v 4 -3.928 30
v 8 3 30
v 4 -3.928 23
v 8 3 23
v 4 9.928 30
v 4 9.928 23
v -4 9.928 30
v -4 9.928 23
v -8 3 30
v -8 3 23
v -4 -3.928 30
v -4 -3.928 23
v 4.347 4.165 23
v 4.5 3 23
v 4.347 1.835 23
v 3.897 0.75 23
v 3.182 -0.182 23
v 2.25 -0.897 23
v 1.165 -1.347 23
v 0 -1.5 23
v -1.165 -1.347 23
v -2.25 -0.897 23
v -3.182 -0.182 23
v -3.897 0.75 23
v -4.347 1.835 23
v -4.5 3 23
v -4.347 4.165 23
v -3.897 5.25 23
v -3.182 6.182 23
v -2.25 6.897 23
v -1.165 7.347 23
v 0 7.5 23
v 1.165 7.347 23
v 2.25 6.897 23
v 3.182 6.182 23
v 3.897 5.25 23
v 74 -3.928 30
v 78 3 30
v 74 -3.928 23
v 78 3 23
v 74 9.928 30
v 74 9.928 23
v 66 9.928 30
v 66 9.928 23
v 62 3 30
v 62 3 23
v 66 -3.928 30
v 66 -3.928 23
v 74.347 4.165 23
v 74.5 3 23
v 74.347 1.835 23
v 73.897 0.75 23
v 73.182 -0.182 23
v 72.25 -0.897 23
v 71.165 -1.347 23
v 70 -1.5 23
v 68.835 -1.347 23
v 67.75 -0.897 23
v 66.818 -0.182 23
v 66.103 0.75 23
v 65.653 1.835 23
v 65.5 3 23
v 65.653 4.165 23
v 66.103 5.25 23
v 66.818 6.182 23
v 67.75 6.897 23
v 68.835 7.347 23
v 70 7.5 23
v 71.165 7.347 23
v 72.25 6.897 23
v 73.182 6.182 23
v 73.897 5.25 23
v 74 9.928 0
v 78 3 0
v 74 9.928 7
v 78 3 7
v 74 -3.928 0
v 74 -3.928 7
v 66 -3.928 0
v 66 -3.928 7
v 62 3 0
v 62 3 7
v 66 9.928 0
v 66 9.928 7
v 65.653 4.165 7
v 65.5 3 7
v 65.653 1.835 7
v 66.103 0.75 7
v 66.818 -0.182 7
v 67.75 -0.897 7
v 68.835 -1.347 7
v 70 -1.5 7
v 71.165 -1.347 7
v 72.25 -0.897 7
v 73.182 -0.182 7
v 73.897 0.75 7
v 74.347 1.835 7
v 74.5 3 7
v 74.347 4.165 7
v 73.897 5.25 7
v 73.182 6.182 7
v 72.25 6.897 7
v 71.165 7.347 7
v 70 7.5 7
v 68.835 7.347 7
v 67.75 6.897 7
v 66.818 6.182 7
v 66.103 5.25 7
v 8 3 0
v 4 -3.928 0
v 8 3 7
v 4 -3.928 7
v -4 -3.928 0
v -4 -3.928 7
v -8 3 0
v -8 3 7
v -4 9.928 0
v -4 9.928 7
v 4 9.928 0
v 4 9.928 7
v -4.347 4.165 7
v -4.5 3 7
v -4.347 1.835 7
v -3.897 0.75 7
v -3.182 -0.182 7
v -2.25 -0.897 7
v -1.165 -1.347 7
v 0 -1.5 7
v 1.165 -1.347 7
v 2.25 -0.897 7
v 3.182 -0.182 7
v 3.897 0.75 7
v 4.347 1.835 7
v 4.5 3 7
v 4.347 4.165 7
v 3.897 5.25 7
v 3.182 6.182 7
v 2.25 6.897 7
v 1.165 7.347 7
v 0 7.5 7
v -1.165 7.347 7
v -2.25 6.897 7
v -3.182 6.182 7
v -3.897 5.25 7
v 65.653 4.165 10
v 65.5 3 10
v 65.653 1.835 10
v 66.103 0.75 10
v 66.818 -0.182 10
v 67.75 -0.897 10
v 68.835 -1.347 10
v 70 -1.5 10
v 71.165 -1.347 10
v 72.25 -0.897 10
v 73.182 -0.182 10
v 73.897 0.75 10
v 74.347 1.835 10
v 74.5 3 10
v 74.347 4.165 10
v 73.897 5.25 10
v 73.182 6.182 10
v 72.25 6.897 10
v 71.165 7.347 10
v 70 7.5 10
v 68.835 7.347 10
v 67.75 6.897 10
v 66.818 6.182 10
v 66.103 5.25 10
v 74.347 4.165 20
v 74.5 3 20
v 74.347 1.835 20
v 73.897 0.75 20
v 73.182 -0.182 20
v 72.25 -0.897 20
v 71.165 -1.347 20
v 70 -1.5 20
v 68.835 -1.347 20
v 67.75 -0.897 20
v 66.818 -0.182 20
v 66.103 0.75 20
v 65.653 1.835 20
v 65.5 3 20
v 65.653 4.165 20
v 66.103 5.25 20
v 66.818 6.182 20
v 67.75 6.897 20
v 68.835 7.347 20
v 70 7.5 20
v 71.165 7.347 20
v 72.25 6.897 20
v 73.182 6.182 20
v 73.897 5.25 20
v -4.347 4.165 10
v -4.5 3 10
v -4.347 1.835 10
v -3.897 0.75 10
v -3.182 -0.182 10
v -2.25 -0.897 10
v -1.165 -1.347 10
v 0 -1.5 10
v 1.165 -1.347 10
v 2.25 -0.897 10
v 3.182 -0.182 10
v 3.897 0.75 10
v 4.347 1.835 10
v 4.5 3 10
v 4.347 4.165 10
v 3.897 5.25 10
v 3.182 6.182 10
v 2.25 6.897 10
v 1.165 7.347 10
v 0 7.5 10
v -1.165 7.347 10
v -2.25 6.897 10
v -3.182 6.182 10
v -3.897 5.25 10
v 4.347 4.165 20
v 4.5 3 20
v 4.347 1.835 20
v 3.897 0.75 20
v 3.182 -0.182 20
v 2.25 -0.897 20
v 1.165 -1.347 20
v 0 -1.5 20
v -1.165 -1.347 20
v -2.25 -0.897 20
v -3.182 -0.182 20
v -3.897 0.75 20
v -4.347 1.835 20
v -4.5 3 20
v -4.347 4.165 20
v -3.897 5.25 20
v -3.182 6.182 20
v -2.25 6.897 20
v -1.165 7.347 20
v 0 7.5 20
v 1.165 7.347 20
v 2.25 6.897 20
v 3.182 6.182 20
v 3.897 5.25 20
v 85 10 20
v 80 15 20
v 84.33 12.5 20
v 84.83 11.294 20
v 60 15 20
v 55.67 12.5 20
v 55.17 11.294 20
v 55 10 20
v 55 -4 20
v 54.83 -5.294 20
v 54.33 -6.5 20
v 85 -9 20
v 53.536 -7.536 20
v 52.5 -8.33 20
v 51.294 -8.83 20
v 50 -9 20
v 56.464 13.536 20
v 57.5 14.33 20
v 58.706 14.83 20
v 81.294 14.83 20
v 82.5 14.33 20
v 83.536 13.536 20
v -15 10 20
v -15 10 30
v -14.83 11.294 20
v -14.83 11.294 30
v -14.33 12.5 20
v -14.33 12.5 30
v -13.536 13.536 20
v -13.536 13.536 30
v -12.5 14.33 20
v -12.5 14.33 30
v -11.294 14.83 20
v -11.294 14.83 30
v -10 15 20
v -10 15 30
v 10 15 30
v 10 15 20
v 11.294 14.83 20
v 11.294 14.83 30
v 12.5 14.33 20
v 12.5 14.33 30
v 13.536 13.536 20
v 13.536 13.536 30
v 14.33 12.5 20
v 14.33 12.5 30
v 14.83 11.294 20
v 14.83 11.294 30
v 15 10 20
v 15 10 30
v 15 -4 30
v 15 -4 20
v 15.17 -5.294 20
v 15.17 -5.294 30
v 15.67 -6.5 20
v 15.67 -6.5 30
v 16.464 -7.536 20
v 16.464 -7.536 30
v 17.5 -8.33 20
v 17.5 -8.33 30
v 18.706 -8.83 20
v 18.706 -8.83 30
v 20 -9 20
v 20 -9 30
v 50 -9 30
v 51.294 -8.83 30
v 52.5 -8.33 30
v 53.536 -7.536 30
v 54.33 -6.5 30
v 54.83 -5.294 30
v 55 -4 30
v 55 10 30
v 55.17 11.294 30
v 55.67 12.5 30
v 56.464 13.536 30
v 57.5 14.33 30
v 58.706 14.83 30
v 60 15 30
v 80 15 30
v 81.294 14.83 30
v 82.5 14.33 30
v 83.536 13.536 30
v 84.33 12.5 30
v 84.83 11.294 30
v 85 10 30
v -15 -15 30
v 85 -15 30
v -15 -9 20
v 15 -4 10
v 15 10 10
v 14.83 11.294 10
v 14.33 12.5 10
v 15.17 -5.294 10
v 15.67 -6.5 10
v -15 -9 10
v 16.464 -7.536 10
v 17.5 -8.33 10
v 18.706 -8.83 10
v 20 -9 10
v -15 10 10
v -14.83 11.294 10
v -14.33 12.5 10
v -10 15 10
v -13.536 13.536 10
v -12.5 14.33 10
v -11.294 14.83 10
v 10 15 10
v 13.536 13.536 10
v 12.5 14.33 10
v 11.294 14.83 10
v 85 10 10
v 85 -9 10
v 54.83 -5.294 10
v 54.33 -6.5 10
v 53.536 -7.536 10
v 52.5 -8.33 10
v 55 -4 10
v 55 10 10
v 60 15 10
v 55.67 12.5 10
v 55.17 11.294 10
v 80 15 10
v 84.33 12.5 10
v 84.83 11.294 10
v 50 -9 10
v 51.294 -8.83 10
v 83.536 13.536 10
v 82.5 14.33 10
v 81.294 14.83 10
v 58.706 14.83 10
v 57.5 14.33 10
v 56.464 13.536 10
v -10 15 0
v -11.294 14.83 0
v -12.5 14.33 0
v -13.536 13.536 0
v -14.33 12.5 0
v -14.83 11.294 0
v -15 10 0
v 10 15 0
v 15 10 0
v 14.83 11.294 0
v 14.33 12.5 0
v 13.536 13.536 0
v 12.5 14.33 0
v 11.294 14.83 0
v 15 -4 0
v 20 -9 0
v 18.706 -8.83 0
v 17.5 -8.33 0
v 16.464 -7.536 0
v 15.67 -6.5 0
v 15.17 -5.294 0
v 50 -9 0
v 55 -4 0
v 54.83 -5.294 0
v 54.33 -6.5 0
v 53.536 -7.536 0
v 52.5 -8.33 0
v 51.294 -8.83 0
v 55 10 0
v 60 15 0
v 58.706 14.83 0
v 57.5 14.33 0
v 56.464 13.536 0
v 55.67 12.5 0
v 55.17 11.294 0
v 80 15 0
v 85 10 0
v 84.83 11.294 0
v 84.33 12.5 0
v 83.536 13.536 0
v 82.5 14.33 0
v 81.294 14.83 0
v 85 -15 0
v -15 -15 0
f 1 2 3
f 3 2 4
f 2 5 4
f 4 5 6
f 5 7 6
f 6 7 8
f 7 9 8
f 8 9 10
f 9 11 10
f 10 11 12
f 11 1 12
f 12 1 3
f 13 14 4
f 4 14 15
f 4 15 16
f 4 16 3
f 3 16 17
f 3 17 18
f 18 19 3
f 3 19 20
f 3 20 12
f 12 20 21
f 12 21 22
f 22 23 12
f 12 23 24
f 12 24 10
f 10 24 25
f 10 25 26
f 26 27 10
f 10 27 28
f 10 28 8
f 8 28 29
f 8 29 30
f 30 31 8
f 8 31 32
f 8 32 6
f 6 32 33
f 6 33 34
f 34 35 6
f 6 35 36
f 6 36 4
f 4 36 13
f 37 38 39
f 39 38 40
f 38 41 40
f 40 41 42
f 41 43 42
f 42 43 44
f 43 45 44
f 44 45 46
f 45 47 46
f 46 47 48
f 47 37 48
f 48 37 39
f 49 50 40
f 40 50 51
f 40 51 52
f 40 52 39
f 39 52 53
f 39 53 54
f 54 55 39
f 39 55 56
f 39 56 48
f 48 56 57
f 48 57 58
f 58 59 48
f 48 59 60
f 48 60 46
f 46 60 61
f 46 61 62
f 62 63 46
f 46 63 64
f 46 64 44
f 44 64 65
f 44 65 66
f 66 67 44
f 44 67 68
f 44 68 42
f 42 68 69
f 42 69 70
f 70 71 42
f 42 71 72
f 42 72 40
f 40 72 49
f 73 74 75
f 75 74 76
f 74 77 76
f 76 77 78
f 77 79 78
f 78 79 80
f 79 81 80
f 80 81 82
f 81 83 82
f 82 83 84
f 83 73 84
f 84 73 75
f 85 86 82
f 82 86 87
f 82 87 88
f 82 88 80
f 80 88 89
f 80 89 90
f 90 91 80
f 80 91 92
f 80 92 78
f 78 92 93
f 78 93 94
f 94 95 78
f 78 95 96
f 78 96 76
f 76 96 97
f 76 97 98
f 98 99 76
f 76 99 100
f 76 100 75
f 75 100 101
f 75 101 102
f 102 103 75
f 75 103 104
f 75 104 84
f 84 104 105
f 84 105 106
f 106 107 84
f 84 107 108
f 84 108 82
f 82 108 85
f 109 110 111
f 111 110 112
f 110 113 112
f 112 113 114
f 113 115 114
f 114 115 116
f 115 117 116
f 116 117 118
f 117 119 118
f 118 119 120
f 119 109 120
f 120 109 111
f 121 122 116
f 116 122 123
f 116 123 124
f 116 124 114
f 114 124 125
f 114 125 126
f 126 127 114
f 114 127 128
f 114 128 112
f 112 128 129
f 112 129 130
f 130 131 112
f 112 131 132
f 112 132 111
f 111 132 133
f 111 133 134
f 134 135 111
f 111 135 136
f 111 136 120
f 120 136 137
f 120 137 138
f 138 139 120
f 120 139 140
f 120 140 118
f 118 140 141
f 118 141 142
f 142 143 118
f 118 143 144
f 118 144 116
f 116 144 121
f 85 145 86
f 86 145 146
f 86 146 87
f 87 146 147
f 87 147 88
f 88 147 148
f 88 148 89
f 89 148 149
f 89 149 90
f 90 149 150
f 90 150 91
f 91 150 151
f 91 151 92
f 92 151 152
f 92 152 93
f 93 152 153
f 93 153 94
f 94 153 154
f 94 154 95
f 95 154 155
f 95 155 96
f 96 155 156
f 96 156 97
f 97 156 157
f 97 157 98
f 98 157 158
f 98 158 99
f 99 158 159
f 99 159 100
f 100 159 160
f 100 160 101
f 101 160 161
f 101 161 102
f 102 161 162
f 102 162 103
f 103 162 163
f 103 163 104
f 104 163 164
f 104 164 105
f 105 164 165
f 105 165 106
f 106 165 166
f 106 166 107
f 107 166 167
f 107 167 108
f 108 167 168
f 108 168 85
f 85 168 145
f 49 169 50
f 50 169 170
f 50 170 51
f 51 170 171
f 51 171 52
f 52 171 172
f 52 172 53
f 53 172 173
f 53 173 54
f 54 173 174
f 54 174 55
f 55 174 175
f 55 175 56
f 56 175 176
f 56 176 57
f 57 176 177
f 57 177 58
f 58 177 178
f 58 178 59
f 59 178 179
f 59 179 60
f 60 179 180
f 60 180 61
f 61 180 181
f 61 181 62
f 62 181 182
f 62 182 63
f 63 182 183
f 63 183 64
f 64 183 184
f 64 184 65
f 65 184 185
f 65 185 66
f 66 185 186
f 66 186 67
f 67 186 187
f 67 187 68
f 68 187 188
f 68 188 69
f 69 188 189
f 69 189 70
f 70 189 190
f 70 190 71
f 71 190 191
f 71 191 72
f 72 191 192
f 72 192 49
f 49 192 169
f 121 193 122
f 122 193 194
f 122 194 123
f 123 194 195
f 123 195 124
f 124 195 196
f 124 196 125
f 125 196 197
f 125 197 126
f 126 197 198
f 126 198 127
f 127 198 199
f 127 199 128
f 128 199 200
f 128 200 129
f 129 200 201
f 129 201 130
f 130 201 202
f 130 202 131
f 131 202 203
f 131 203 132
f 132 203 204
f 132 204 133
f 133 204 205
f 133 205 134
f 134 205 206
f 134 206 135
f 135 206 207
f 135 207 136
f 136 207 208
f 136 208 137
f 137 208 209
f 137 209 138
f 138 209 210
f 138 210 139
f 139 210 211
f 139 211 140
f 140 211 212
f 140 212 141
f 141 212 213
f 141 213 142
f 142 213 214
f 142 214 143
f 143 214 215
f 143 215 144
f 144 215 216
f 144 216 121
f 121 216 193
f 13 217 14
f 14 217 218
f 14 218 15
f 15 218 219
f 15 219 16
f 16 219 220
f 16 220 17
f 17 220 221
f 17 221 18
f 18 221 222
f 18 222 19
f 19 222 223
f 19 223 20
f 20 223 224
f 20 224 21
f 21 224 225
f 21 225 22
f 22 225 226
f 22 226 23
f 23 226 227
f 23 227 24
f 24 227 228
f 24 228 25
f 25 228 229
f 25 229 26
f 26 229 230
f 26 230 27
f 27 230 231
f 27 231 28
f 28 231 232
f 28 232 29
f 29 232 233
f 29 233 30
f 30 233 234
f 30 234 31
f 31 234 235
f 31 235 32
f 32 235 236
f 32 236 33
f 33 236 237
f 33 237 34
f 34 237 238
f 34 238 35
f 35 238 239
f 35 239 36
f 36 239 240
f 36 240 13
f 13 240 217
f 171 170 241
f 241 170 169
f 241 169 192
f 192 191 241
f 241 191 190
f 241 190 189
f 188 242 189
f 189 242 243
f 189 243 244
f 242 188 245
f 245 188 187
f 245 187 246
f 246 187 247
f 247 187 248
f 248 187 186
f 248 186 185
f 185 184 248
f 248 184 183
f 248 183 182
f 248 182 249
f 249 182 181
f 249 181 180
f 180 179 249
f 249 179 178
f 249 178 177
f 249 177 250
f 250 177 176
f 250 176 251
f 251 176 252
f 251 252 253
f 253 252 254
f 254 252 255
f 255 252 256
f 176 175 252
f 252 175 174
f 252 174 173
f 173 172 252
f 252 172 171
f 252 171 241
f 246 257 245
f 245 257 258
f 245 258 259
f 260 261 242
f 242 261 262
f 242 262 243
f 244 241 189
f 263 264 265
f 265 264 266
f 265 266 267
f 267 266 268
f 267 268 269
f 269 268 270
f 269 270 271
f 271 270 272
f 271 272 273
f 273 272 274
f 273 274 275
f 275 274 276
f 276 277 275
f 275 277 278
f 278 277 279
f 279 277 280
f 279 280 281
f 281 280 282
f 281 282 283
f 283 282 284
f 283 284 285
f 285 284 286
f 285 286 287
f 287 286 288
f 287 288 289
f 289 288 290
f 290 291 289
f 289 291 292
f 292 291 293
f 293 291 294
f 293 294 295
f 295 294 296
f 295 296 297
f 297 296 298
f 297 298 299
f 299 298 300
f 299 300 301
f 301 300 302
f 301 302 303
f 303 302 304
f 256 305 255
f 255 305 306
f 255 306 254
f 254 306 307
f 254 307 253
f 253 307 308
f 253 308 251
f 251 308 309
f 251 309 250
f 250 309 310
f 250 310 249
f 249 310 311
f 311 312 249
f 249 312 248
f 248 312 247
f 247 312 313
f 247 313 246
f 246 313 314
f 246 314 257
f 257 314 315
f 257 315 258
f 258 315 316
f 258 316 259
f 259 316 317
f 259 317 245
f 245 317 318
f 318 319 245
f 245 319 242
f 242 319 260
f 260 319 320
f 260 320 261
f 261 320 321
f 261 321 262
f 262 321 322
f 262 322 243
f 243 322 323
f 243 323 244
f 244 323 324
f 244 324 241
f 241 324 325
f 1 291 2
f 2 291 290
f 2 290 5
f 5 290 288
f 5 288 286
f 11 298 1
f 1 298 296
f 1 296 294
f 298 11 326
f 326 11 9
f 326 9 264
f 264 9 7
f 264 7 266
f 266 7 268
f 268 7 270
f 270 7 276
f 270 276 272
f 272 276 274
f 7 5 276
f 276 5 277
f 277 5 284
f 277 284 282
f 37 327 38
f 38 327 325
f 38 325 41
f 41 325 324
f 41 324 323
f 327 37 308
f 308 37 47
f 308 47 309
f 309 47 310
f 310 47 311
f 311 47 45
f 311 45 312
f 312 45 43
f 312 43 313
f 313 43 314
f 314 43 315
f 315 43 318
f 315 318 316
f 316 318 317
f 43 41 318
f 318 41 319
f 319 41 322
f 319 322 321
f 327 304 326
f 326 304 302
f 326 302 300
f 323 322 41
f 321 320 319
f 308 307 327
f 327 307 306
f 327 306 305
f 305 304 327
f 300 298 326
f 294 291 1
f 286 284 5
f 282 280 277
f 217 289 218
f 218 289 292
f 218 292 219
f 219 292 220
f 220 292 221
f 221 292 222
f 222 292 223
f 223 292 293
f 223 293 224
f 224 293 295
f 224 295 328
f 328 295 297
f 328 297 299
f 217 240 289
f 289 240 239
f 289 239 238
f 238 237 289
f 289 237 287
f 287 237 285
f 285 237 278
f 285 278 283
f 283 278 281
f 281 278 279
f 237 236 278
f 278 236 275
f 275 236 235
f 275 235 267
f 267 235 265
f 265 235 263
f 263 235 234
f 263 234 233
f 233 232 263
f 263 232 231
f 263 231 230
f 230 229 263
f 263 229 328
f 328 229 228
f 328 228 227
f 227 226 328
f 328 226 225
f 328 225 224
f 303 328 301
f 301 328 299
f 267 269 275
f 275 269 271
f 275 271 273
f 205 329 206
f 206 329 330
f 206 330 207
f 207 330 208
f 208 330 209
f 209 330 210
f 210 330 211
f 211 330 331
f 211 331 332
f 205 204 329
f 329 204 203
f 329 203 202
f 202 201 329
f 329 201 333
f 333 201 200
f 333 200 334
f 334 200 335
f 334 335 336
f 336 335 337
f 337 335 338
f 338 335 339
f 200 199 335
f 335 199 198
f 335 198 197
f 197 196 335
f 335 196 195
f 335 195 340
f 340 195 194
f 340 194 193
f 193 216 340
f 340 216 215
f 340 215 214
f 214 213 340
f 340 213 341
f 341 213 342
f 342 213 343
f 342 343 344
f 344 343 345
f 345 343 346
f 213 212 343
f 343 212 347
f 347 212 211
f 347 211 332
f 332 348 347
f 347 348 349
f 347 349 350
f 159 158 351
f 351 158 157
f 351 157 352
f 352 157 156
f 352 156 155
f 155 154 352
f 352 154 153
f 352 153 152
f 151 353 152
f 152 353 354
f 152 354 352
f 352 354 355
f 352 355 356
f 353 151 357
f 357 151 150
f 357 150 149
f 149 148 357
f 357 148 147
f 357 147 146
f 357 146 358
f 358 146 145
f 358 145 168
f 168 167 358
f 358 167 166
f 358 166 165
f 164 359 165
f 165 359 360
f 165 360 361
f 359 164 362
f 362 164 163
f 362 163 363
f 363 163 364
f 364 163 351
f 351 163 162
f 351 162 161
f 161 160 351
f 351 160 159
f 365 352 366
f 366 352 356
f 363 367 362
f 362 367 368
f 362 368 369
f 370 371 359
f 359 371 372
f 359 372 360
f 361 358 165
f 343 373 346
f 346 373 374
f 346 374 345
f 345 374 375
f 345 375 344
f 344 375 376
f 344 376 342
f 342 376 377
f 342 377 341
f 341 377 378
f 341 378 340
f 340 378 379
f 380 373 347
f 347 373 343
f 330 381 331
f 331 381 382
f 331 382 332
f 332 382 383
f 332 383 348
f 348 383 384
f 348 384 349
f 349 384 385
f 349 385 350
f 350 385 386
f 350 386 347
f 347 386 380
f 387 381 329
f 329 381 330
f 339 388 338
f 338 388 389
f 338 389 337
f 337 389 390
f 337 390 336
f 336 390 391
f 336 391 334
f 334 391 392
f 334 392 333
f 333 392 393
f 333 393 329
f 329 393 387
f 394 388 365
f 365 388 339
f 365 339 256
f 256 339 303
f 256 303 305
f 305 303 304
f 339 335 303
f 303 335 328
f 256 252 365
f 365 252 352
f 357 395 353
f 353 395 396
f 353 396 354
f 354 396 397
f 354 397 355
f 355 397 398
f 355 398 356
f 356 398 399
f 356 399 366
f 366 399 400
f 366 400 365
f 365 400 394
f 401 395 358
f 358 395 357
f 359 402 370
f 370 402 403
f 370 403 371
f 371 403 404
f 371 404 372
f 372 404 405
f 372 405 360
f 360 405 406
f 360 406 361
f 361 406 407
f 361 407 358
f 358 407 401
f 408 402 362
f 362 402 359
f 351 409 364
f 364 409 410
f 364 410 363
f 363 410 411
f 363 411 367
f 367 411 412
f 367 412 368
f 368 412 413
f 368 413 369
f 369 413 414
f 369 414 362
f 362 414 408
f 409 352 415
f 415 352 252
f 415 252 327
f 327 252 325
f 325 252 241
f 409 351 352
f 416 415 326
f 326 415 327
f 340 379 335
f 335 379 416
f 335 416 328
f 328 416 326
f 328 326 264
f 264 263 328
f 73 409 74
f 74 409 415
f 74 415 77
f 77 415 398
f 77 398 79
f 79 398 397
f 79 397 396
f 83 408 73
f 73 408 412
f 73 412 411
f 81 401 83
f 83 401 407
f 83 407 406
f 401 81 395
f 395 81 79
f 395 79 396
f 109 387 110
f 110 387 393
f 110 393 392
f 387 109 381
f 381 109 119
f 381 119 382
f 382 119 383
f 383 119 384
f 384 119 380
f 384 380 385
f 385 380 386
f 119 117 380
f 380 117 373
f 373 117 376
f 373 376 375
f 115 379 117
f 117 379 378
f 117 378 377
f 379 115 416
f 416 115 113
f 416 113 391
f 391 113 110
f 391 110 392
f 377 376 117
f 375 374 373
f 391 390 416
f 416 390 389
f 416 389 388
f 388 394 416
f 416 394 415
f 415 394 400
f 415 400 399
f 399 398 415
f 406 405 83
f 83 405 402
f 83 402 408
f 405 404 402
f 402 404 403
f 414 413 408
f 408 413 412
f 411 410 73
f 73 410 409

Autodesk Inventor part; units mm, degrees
ref_plane "YZ Plane" through (0, 0, 0) normal (1, 0, 0) x (0, 1, 0)
ref_plane "XZ Plane" through (0, 0, 0) normal (0, 1, 0) x (-1, 0, 0)
sketch "Sketch1" plane through (0, 0, 0) normal (0, 0, 1) x (1, 0, 0)
  line L0 (10, 15) -> (-10, 15)
  line L1 (-15, 10) -> (-15, -15)
  line L2 (-15, -15) -> (15, -15)
  line L3 (15, -4) -> (15, 10)
  line L4 (15, 15) -> (-15, -15) construction
  line L5 (-15, 15) -> (15, -15) construction
  line L6 (15, -15) -> (55, -15)
  line L7 (85, -15) -> (85, -9)
  line L8 (-15, -9) -> (-15, -15)
  line L9 (85, -15) -> (55, -15)
  line L10 (55, -4) -> (55, 10)
  line L11 (60, 15) -> (80, 15)
  line L12 (85, 10) -> (85, -15)
  line L13 (50, -9) -> (20, -9)
  arc A0 (-10, 15) -> (-15, 10) centre (-10, 10) ccw
  arc A1 (15, 10) -> (10, 15) centre (10, 10) ccw
  arc A2 (15, -4) -> (20, -9) centre (20, -4) ccw
  arc A3 (50, -9) -> (55, -4) centre (50, -4) ccw
  arc A4 (60, 15) -> (55, 10) centre (60, 10) ccw
  arc A5 (85, 10) -> (80, 15) centre (80, 10) ccw
  point P0 (0, 0)
  point P1 (55, 15)
  point P2 (85, 15)
  dimension "d0" = 30
  dimension "d1" = 30
  dimension "d2" = 100
  dimension "d3" = 6
  dimension "d4" = 30
  dimension "d5" = 30
  dimension "d6" = 5
extrude "Extrusion1" add sketch "Sketch1" along normal blind 10
ref_plane "Work Plane1" through (0, 0, 15) normal (0, 0, 1) x (1, 0, 0)
mirror "Mirror1" about plane through (0, 0, 15) normal (0, 0, 1)
sketch "Sketch3" plane through (0, 0, 10) normal (0, 0, 1) x (1, 0, 0)
  line L0 (-15, -15) -> (85, -15)
  line L1 (85, -15) -> (85, -9)
  line L2 (85, -9) -> (-15, -9)
  line L3 (-15, -9) -> (-15, -15)
  point P0 (0, 0)
  dimension "d14" = 100
  dimension "d15" = 6
extrude "Extrusion3" add sketch "Sketch3" along normal blind 10
sketch "Sketch4" plane through (0, 0, 0) normal (0, 0, -1) x (-1, 0, 0)
  line L0 (-60, 15) -> (-80, 15) projected
  line L1 (-55, -4) -> (-55, 10) projected
  line L2 (-85, -15) -> (15, -15) projected
  line L3 (-35, -15) -> (-35, -9)
  line L4 (-20, -9) -> (-50, -9) projected
  point P0 (0, 0)
  point P1 (-70, 3)
  point P2 (0, 3)
  dimension "d18" = 12
  dimension "d19" = 15
hole "Hole1" at (70, 3, 0) at (0, 3, 0) direction (0, 0, 1) diameter 9 end through all
sketch "Sketch5" plane through (0, 0, 0) normal (0, 0, -1) x (-1, 0, 0)
  circle A0 centre (-70, 3) radius 4.5 projected
  line L0 (-66, 9.9282) -> (-62, 3)
  line L1 (-62, 3) -> (-66, -3.9282)
  line L2 (-66, -3.9282) -> (-74, -3.9282)
  line L3 (-74, -3.9282) -> (-78, 3)
  line L4 (-78, 3) -> (-74, 9.9282)
  line L5 (-74, 9.9282) -> (-66, 9.9282)
  line L6 (-70, 3) -> (-55, 3)
  line L7 (-55, 10) -> (-55, -4) projected
  line L8 (-85, -15) -> (15, -15) projected
  line L9 (-35, -15) -> (-35, -9)
  line L10 (-20, -9) -> (-50, -9) projected
  line L11 (-4, 9.9282) -> (-8, 3)
  line L12 (-8, 3) -> (-4, -3.9282)
  line L13 (-4, -3.9282) -> (4, -3.9282)
  line L14 (4, -3.9282) -> (8, 3)
  line L15 (8, 3) -> (4, 9.9282)
  line L16 (4, 9.9282) -> (-4, 9.9282)
  circle A1 centre (0, 3) radius 4.5
  point P0 (0, 0)
  dimension "d27" = 16
extrude "Extrusion4" cut sketch "Sketch5" against normal blind 7
sketch "Sketch6" plane through (-15, -15, 30) normal (0, 0, 1) x (1, 0, 0)
  circle A0 centre (15, 18) radius 4.5 projected
  line L0 (19, 11.0718) -> (23, 18) projected
  line L1 (19, 11.0718) -> (11, 11.0718)
  line L2 (11, 11.0718) -> (7, 18)
  line L3 (7, 18) -> (11, 24.9282)
  line L4 (11, 24.9282) -> (19, 24.9282)
  line L5 (19, 24.9282) -> (23, 18)
  line L6 (23, 18) -> (19, 11.0718)
  circle A1 centre (85, 18) radius 4.5 projected
  line L7 (81, 11.0718) -> (89, 11.0718) projected
  line L8 (89, 11.0718) -> (81, 11.0718)
  line L9 (81, 11.0718) -> (77, 18)
  line L10 (77, 18) -> (81, 24.9282)
  line L11 (81, 24.9282) -> (89, 24.9282)
  line L12 (89, 24.9282) -> (93, 18)
  line L13 (93, 18) -> (89, 11.0718)
  point P0 (15, 15)
extrude "Extrusion5" cut sketch "Sketch6" against normal blind 7
properties part number "Suporte Carretel"
